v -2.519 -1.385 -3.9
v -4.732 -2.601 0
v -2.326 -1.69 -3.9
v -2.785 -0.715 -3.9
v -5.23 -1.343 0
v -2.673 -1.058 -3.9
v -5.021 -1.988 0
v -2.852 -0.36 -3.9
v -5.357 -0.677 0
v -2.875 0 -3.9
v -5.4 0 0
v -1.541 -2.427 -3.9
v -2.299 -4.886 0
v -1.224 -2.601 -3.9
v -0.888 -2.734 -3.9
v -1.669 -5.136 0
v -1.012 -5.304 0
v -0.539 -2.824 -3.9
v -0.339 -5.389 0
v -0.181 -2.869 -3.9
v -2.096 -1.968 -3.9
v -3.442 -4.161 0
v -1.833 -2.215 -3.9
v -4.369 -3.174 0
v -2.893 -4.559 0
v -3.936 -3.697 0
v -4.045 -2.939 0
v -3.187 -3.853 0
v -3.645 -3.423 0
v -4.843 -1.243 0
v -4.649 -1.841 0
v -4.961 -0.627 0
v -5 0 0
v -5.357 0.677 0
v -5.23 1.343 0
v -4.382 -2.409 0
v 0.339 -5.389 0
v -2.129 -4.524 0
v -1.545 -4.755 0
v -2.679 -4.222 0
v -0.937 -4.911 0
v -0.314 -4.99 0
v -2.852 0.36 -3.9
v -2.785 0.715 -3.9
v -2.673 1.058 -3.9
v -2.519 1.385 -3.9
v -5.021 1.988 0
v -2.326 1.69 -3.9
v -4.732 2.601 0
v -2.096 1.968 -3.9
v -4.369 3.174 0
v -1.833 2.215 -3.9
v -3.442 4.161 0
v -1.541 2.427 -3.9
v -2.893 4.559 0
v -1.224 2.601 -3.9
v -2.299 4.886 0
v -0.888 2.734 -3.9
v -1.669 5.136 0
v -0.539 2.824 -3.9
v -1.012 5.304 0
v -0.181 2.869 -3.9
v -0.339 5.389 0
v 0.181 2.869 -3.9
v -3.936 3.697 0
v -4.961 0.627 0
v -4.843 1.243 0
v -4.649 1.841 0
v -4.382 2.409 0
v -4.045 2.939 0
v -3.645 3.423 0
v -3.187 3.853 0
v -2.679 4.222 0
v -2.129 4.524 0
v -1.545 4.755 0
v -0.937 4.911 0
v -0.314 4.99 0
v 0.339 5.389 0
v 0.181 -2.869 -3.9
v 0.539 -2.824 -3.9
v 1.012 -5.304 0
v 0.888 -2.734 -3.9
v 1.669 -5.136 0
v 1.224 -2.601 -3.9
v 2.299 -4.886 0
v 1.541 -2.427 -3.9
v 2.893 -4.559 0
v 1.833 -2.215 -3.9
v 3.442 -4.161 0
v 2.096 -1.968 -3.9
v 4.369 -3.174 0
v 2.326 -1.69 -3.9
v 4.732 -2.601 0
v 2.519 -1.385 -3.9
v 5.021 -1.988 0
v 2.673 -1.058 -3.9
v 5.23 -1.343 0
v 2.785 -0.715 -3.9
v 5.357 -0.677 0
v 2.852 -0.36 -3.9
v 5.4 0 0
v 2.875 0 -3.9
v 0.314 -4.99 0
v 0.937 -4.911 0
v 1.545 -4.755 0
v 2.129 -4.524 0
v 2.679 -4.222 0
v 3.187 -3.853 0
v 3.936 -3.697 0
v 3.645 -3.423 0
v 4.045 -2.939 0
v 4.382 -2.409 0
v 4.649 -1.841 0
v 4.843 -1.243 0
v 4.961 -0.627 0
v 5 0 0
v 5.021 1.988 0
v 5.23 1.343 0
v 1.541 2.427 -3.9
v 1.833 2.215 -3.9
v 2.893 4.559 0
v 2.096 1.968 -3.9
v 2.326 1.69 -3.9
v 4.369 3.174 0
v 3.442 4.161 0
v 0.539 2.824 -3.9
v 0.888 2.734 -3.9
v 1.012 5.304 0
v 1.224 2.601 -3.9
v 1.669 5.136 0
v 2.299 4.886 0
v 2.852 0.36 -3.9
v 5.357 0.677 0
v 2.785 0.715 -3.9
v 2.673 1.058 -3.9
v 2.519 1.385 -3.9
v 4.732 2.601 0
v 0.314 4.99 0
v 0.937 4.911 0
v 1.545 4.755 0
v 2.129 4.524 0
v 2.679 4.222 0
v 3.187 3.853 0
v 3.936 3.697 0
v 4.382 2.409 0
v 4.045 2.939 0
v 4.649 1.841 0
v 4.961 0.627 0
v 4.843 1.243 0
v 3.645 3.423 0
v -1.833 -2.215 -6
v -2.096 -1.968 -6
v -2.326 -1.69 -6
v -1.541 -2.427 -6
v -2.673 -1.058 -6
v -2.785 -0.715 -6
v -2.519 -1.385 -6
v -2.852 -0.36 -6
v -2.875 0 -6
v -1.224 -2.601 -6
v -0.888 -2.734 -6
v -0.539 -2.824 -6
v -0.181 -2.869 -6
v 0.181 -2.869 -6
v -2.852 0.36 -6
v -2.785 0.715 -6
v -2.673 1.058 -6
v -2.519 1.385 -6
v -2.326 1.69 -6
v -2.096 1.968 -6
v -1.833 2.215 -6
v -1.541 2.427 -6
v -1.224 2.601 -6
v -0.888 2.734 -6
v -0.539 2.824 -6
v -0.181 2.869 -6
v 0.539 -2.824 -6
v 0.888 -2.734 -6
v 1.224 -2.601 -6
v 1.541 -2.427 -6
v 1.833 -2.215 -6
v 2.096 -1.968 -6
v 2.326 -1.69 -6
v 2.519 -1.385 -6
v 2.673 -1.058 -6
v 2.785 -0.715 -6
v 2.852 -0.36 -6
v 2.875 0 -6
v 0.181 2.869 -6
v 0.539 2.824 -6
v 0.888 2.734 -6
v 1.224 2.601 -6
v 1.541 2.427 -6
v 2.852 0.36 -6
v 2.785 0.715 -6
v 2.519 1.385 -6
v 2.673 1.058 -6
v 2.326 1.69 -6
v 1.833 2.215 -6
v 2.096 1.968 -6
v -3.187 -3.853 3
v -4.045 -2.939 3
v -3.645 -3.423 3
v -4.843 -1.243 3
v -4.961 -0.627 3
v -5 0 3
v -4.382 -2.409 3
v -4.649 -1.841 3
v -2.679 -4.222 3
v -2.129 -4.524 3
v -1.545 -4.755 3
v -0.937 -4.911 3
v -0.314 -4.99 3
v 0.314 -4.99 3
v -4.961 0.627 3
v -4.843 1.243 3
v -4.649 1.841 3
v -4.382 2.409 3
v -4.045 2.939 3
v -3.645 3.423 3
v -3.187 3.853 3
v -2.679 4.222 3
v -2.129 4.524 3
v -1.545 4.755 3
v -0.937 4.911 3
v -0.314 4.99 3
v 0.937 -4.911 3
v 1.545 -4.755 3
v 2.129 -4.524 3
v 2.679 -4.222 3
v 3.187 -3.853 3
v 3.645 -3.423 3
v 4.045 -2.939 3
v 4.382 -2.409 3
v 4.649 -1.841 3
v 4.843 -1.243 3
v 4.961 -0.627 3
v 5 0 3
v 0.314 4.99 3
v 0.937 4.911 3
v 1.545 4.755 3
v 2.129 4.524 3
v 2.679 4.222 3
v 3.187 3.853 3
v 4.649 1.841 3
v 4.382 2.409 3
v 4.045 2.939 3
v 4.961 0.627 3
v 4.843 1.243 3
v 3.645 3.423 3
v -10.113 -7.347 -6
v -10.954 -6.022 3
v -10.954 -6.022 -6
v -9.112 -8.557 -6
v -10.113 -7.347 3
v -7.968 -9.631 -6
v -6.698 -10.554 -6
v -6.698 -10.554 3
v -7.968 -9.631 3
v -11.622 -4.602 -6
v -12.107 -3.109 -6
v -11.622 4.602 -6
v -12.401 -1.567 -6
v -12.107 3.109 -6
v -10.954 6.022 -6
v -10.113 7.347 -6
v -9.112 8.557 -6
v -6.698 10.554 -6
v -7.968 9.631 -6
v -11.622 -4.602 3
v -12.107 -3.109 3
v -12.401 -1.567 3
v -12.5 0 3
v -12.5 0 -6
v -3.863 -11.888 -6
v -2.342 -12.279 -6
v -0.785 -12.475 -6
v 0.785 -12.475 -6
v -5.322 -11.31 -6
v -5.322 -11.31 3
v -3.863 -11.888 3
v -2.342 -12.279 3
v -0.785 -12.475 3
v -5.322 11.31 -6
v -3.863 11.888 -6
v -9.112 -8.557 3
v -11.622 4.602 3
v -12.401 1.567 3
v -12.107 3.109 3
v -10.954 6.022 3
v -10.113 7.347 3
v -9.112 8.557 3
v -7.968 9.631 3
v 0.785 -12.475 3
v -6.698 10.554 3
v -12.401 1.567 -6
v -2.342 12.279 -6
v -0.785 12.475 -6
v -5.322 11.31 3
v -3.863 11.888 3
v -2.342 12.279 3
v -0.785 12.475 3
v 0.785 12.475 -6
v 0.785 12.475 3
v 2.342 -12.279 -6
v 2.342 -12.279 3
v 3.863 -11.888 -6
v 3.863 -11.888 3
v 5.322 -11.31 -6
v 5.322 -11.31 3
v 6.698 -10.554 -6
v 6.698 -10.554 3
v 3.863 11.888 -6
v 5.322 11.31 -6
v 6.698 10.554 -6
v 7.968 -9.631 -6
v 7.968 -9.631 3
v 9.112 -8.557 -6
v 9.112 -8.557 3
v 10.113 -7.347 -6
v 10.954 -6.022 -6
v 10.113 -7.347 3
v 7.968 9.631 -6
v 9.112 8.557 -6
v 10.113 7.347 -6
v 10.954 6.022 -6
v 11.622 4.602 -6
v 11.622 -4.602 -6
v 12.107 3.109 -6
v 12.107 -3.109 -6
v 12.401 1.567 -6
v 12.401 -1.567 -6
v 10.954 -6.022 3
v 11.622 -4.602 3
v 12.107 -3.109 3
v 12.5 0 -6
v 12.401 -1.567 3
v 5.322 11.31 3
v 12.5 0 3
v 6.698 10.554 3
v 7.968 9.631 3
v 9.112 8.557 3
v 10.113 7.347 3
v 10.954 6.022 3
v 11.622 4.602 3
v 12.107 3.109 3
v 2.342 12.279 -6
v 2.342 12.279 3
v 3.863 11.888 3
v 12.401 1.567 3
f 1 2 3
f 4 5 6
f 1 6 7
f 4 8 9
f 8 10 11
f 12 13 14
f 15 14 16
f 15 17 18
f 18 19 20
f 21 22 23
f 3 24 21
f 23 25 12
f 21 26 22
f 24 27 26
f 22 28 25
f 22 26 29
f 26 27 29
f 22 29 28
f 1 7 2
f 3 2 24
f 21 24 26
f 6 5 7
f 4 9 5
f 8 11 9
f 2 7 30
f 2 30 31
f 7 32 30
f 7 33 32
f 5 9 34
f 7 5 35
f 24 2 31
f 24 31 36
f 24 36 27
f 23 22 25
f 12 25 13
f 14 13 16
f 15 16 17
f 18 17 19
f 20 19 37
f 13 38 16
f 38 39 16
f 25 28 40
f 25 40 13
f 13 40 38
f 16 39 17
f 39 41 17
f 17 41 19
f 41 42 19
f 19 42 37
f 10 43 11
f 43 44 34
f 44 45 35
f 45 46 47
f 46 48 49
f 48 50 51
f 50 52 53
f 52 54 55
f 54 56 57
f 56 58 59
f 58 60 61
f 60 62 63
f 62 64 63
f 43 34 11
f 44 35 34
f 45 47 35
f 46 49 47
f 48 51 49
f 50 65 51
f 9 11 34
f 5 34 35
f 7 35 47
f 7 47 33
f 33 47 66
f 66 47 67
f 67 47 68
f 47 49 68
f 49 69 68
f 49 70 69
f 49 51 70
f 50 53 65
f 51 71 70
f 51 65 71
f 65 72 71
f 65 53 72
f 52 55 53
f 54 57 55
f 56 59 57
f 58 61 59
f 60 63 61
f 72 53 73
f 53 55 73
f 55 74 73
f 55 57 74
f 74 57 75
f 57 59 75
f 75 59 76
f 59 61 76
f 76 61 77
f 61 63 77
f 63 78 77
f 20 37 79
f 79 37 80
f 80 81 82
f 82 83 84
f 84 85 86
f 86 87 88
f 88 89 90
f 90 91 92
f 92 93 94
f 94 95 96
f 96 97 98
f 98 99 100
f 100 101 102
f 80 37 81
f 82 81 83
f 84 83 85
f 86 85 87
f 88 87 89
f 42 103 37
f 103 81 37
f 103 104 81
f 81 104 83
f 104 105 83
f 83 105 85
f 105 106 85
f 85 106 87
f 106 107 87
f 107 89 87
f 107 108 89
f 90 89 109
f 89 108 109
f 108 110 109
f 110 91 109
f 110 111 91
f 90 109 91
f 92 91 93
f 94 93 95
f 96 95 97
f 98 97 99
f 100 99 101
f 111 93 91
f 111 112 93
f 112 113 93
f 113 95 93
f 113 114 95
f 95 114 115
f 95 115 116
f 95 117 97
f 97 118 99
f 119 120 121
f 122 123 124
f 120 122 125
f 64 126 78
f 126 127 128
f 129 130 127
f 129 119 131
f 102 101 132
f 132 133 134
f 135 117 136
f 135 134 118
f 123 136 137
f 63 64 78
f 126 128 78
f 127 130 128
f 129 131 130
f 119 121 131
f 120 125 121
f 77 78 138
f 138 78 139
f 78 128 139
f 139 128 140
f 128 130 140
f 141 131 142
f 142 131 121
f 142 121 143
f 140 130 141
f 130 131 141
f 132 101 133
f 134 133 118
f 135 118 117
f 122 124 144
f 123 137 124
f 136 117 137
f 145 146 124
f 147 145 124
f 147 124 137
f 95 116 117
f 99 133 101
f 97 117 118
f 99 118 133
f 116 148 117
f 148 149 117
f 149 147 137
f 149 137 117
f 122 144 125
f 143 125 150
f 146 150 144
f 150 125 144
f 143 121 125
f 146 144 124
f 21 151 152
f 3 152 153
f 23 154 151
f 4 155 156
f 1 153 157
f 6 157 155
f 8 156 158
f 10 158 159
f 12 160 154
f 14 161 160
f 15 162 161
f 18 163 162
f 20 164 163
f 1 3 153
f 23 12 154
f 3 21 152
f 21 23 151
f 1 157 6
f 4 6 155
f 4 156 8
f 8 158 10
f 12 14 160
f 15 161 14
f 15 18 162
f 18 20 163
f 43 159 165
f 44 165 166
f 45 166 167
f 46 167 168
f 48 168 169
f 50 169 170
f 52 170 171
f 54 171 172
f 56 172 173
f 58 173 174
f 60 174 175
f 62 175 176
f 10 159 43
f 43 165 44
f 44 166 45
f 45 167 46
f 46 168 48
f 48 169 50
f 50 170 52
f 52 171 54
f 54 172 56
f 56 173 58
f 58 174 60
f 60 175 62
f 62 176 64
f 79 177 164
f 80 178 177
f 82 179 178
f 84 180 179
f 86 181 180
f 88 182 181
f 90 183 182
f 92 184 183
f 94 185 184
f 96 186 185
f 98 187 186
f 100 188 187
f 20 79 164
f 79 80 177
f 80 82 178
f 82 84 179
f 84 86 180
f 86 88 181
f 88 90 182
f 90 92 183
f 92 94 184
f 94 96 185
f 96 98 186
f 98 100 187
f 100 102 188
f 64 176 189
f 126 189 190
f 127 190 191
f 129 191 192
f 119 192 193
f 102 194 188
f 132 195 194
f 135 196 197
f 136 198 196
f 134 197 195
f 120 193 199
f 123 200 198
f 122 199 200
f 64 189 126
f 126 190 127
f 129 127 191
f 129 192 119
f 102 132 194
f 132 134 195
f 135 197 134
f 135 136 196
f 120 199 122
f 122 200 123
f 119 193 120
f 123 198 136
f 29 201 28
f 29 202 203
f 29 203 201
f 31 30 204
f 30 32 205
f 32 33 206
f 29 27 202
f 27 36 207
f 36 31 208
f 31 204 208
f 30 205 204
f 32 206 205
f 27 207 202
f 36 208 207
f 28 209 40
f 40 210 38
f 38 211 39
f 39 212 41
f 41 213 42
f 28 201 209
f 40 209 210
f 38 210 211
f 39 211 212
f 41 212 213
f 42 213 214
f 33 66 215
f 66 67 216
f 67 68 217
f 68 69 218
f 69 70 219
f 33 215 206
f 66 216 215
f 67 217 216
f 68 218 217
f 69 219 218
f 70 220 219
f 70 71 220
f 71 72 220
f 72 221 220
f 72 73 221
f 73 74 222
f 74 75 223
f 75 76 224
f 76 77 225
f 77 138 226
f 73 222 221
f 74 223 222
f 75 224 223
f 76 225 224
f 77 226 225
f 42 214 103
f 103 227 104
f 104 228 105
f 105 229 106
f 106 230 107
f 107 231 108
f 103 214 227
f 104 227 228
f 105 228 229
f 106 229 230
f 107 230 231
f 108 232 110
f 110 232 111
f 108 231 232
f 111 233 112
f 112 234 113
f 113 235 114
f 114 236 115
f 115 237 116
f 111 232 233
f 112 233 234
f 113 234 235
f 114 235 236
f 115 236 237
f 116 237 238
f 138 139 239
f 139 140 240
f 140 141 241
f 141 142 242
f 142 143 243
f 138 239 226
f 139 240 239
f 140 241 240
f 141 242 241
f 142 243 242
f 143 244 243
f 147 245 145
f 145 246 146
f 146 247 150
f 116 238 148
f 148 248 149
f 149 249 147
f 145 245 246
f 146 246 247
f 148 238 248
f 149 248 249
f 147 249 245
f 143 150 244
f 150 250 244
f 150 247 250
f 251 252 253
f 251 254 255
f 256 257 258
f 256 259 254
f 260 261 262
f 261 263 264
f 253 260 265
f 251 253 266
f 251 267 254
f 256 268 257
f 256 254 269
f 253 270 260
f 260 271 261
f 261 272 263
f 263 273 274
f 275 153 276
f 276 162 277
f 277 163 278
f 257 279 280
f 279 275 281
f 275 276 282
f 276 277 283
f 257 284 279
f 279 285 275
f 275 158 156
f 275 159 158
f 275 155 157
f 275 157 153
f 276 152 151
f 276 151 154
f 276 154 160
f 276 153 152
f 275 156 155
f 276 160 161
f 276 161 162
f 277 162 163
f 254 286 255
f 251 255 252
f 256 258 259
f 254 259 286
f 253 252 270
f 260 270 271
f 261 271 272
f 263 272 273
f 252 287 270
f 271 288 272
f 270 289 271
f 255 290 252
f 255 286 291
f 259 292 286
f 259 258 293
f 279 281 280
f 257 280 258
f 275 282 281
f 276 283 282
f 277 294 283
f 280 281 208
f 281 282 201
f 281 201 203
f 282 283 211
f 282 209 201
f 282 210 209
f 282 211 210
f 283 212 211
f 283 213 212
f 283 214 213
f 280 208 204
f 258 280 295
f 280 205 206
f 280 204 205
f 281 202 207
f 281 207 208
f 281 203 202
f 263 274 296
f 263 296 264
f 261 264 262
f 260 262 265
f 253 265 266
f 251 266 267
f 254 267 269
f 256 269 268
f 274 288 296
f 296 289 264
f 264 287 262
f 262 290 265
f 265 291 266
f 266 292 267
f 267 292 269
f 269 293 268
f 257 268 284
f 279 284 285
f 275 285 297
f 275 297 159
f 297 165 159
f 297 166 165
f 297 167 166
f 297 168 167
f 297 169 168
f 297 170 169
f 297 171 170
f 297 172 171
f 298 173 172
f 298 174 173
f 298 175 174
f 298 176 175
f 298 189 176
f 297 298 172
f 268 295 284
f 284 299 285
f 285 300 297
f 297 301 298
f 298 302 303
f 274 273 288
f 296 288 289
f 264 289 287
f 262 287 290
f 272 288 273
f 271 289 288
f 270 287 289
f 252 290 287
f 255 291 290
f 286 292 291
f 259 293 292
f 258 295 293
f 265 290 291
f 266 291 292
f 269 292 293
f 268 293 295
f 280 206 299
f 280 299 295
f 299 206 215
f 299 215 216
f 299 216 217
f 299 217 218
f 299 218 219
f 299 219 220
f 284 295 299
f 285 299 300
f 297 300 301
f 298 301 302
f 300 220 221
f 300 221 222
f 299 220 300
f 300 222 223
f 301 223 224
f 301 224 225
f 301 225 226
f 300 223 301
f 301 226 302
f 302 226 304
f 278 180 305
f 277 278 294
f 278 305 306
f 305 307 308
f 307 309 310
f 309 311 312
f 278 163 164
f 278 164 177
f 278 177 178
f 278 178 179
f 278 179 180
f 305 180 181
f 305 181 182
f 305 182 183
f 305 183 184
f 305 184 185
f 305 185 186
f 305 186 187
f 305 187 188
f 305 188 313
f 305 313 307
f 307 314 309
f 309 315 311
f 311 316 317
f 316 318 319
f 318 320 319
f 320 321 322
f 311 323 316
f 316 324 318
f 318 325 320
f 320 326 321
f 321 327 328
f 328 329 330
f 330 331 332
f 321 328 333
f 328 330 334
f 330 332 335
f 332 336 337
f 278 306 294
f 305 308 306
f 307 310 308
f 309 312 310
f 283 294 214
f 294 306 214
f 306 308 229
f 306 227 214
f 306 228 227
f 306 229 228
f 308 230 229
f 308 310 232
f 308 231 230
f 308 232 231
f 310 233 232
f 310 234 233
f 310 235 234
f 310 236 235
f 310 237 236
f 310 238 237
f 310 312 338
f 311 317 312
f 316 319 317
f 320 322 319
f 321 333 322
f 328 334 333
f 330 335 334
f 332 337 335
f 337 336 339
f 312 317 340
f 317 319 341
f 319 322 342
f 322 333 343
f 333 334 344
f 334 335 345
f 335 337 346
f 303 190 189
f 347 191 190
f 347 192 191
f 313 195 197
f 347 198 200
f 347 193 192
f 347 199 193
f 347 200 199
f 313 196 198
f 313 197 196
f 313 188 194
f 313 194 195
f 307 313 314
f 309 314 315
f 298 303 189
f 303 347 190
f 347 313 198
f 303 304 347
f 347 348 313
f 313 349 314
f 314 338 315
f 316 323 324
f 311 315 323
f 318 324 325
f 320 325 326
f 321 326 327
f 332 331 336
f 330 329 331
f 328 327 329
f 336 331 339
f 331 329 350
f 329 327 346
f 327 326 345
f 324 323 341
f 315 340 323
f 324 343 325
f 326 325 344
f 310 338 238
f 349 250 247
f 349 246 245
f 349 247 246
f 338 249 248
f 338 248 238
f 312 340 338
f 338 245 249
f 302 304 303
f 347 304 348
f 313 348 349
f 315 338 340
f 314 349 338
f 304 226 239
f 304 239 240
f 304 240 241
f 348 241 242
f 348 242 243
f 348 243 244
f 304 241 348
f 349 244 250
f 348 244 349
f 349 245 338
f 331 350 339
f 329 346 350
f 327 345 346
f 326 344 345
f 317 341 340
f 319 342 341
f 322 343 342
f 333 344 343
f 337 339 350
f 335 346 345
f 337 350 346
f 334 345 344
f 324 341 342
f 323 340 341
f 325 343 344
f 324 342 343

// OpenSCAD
$fn = 50;

difference() {
	union() {
		translate(v = [0, 0, -6.0]) {
			cylinder(h = 9, r = 12.5);
		}
	}
	union() {
		translate(v = [0, 0, 0]) {
			rotate(a = [0, 0, 0]) {
				difference() {
					union() {
						translate(v = [0, 0, -9.0]) {
							cylinder(h = 9, r = 2.6);
						}
						translate(v = [0, 0, -3.9]) {
							cylinder(h = 3.9, r1 = 2.875, r2 = 5.4);
						}
						translate(v = [0, 0, -9.0]) {
							cylinder(h = 9, r = 2.875);
						}
						translate(v = [0, 0, -9.0]) {
							cylinder(h = 9, r = 2.6);
						}
					}
					union();
				}
			}
		}
		#cylinder(h = 3, r = 5.0);
	}
}
